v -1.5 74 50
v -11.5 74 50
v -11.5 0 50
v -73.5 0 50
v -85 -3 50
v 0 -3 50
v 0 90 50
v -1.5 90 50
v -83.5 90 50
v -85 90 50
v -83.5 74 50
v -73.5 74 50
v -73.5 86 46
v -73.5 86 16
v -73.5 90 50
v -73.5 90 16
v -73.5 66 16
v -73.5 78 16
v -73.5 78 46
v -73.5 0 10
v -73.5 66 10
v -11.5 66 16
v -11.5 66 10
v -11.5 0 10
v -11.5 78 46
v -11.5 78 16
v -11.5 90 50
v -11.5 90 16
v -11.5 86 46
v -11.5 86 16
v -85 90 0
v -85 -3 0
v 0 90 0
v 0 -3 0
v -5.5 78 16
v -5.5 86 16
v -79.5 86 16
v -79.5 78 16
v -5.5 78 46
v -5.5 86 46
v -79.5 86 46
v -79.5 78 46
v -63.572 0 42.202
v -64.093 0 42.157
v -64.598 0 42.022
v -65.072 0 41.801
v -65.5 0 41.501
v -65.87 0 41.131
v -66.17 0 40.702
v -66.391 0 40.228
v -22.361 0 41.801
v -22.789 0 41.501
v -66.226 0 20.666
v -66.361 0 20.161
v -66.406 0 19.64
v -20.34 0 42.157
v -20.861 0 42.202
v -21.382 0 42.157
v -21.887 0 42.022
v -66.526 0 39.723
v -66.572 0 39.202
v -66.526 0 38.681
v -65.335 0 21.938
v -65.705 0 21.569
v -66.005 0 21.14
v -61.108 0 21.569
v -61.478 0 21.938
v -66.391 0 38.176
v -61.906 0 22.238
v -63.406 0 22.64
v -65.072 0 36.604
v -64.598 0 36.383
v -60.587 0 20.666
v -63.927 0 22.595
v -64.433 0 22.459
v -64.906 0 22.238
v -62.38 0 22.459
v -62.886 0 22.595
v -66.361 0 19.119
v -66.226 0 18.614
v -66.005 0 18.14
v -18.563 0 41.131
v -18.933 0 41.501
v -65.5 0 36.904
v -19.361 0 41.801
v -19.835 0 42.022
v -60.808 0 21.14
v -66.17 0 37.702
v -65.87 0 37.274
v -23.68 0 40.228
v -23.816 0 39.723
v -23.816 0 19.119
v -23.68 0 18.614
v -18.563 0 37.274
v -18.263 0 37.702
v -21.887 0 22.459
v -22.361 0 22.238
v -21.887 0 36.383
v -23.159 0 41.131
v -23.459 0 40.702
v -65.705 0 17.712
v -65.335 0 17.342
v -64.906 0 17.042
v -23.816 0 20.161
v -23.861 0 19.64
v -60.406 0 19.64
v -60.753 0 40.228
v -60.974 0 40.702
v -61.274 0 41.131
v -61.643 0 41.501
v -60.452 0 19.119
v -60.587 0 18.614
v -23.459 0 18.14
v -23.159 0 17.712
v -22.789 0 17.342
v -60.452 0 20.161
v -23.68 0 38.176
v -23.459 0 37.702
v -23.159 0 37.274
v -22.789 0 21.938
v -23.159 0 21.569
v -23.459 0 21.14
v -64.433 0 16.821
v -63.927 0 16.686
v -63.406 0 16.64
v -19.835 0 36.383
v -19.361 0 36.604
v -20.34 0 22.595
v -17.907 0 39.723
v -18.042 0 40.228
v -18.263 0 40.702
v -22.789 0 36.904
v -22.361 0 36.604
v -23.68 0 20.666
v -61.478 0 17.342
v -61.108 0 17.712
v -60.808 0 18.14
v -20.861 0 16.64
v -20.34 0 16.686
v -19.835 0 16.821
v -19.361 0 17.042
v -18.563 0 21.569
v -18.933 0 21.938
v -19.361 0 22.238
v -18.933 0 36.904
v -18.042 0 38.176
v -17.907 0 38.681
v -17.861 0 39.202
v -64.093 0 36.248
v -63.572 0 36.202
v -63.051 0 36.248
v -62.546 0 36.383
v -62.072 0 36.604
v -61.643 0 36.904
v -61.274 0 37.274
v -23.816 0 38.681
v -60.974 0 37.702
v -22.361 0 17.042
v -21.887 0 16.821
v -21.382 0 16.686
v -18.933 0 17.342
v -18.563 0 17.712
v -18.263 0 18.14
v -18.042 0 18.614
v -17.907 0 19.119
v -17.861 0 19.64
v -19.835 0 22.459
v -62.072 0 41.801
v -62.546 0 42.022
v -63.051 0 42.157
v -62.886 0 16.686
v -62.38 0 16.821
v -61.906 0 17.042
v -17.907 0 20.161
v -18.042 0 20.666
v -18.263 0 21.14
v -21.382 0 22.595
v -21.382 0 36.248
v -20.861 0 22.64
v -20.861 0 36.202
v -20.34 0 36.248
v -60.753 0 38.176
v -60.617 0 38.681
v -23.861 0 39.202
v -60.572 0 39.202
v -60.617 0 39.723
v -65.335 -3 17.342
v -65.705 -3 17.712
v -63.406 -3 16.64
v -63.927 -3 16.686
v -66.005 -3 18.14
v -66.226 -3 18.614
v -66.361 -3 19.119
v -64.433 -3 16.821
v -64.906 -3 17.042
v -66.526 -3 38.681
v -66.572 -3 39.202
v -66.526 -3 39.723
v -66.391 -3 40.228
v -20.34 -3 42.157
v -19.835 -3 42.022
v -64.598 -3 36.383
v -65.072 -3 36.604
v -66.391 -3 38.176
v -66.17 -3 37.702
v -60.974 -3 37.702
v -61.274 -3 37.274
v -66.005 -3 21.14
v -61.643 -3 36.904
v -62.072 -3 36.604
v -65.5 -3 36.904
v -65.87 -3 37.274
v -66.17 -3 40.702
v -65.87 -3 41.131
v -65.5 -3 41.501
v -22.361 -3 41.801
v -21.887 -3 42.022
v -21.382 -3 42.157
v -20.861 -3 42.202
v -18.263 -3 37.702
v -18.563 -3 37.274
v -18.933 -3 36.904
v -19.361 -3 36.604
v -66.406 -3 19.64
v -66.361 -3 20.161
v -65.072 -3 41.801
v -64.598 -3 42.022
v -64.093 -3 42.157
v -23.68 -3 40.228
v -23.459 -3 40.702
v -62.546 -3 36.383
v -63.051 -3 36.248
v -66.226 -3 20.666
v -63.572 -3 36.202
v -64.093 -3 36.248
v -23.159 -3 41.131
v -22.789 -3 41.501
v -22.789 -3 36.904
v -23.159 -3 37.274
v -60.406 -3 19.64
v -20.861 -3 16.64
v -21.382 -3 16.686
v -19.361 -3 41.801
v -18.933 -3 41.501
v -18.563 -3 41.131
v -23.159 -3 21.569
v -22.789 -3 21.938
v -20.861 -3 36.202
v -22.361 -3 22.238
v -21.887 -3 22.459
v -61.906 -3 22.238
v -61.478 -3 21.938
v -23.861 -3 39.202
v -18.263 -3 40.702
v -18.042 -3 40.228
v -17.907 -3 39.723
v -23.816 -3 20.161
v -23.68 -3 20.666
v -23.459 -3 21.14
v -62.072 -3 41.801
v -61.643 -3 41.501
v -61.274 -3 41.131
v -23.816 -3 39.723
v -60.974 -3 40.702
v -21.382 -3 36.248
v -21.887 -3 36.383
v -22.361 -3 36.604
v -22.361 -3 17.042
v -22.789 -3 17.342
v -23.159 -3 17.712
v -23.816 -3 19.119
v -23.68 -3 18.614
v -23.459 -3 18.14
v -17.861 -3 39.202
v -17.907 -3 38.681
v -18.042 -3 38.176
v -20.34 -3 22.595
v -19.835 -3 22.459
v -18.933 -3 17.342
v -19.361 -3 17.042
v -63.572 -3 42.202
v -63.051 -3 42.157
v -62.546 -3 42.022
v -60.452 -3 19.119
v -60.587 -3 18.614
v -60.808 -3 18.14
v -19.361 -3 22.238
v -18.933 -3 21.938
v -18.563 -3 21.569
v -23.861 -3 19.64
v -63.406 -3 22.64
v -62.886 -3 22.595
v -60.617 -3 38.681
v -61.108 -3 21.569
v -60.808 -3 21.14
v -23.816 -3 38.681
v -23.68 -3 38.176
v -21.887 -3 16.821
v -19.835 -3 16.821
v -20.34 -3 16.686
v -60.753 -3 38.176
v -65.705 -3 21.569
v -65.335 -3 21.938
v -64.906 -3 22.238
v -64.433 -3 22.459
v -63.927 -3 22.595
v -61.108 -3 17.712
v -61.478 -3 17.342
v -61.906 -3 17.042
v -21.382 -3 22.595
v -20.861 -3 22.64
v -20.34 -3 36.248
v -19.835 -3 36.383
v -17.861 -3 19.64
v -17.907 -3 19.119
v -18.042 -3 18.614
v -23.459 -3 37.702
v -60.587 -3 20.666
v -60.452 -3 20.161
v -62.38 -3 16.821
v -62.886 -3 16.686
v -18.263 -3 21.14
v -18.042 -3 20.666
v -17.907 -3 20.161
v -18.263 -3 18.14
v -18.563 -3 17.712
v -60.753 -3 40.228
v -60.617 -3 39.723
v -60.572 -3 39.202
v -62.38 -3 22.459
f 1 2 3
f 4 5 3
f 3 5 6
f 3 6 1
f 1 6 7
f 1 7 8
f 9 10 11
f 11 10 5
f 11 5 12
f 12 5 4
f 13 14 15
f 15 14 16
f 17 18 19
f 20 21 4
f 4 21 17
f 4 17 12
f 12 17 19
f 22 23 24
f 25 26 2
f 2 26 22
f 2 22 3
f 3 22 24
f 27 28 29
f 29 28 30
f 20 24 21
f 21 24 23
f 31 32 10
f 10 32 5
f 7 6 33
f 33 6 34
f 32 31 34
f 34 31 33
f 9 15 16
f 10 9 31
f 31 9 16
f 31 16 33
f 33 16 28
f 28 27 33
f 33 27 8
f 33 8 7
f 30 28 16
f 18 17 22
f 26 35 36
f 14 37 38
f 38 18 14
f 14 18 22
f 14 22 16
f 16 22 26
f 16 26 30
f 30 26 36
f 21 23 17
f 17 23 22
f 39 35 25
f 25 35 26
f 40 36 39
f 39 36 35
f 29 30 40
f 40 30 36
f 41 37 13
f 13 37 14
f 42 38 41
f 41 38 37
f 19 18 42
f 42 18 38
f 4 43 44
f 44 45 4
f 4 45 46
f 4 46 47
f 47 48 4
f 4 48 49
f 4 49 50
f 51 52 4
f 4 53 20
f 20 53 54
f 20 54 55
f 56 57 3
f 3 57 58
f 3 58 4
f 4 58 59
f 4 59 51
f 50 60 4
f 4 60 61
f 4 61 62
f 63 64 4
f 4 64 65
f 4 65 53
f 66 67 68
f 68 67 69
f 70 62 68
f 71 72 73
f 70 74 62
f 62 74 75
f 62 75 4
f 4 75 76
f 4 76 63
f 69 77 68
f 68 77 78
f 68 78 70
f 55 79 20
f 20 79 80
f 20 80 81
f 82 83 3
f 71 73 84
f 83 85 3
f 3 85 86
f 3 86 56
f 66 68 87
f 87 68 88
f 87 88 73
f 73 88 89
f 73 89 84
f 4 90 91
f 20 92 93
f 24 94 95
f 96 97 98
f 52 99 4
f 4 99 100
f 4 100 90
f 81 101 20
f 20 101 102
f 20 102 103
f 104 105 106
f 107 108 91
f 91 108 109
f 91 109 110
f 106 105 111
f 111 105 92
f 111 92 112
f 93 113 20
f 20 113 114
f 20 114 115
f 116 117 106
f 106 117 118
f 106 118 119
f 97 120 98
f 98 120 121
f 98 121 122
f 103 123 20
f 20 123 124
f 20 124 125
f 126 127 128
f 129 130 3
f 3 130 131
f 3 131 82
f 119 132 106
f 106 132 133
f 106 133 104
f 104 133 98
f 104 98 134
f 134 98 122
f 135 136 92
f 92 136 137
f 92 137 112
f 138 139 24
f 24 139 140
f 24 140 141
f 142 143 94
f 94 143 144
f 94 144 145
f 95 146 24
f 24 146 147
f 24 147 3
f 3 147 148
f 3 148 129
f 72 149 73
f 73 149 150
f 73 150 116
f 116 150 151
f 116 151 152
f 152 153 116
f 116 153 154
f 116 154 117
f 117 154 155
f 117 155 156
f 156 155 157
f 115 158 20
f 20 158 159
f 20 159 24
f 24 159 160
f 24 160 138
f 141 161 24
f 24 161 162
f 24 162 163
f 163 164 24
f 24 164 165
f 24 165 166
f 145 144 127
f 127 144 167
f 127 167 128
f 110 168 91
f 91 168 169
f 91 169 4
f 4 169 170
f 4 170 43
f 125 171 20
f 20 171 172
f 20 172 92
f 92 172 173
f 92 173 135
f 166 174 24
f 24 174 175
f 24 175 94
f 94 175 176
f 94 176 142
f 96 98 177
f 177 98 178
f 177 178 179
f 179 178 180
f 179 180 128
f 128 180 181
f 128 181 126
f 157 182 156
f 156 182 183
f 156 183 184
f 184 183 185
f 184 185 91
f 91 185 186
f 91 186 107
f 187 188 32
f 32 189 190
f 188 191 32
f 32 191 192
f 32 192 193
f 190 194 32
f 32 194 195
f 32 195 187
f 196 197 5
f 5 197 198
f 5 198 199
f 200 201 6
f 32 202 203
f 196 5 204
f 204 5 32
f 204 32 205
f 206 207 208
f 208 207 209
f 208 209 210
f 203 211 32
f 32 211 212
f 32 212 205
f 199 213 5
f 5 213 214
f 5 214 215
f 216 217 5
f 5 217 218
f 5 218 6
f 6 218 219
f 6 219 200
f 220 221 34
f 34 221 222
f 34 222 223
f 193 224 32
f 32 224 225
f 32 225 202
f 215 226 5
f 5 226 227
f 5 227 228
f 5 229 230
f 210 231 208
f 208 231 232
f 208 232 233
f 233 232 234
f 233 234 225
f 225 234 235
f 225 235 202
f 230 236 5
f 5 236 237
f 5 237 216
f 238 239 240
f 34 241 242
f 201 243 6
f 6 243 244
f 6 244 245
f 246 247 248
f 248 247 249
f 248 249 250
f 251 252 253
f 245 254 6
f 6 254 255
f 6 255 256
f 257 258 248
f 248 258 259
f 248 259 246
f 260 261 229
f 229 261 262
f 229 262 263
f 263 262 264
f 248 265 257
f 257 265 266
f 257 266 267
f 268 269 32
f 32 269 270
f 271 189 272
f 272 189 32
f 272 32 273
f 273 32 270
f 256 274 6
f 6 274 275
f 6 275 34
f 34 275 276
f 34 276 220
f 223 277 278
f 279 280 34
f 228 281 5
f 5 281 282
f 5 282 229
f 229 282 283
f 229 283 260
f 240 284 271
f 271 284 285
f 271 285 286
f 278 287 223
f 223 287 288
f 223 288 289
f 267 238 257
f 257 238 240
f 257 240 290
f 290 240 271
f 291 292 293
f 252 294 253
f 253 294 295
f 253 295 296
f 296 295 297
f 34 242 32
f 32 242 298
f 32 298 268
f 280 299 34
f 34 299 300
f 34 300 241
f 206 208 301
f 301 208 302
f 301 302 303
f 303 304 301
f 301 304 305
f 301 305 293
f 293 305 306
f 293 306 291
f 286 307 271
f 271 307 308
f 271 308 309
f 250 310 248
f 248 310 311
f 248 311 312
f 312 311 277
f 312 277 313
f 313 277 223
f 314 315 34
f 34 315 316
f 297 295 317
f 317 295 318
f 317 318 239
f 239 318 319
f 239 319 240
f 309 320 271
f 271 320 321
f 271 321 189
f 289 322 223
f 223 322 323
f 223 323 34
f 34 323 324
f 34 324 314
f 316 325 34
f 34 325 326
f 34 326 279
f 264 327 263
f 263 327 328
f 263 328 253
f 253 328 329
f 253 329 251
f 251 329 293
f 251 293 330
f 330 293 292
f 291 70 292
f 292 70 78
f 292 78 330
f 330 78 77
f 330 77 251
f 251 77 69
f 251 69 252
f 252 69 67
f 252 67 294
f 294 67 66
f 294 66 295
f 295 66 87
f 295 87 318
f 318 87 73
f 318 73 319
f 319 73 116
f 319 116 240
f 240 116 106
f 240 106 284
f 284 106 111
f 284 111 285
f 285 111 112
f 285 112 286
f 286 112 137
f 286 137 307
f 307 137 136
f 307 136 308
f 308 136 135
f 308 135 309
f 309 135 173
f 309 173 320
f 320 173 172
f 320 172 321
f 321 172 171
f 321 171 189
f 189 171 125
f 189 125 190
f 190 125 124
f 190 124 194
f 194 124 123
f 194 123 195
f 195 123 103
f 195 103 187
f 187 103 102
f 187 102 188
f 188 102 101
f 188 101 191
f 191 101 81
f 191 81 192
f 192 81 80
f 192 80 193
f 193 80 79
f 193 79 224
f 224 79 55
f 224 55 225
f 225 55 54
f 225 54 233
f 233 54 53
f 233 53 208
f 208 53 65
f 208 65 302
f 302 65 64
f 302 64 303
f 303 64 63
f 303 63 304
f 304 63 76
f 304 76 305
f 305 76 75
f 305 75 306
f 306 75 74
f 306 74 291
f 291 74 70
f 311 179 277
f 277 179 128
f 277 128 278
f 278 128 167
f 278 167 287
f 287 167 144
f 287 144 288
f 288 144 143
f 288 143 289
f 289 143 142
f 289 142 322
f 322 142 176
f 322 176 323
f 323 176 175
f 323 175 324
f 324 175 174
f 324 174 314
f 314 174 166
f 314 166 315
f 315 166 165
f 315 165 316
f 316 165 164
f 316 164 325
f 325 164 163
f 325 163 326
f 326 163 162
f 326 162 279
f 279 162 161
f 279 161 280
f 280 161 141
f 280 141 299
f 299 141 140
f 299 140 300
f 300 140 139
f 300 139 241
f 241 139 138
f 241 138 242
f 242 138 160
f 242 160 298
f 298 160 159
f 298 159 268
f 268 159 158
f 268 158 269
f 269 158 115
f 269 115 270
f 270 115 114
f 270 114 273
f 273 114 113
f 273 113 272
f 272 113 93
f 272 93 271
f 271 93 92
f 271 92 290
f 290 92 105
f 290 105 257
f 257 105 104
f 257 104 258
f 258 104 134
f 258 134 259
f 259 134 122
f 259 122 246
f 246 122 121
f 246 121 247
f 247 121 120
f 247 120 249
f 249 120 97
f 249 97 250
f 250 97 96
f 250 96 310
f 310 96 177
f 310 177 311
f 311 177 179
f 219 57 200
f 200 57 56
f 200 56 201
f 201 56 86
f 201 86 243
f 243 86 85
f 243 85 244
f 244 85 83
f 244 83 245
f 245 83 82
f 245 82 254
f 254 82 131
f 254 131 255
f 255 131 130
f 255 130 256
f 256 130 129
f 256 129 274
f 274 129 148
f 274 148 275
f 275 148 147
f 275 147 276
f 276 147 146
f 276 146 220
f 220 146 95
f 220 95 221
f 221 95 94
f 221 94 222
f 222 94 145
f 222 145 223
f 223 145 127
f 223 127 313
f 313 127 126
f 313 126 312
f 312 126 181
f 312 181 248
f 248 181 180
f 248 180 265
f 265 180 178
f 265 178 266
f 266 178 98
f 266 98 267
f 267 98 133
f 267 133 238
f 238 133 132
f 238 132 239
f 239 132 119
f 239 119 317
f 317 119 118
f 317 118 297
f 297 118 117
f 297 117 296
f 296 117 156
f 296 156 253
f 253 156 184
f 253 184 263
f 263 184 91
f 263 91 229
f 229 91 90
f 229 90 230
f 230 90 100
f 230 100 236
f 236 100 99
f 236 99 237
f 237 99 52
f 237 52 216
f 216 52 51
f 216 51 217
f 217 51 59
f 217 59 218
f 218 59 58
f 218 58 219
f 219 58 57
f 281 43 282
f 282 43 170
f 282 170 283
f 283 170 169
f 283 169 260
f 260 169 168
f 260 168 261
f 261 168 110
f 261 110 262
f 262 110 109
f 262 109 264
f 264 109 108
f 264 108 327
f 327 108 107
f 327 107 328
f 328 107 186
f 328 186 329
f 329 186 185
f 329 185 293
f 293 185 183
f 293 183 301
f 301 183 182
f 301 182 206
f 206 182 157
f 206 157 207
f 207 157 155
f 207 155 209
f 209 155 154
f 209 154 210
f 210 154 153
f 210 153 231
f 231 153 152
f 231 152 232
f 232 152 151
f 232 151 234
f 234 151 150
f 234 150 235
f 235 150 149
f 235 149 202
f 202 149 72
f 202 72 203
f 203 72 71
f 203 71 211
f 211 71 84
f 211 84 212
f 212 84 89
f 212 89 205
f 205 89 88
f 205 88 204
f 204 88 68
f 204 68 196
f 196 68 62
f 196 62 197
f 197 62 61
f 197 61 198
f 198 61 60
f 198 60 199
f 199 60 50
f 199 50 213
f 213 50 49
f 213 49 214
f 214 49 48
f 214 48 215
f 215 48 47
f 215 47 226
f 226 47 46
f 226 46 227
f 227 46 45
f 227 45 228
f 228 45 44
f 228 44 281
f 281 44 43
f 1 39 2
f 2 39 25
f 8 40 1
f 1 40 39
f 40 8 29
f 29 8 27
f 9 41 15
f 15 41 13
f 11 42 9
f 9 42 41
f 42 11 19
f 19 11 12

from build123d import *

# Parameters (mm, degrees)
SKETCH1_W           = 85
SKETCH1_H           = 50
BOSS_EXTRUDE1_DEPTH = 90
CUT_EXTRUDE1_REACH  = 135.51
SKETCH2_W           = 62
SKETCH2_H           = 40
SKETCH3_W           = 85
SKETCH3_H           = 16
BOSS_EXTRUDE2_DEPTH = 24
CUT_EXTRUDE2_REACH  = 130.378
SKETCH4_W           = 6
SKETCH4_H           = 8
SKETCH5_W           = 85
SKETCH5_H           = 50
BOSS_EXTRUDE3_DEPTH = 3
CUT_EXTRUDE3_REACH  = 135.51
SKETCH6_R           = 3
CHAMFER1_SIZE       = 4


with BuildPart() as part:
    # Sketch1 → Boss-Extrude1 (new body)
    with BuildSketch(Plane(origin=(0, 0, 0), x_dir=(1, 0, 0), z_dir=(0, 1, 0))):
        with Locations((-42.5, -25)):
            Rectangle(SKETCH1_W, SKETCH1_H)
    extrude(amount=BOSS_EXTRUDE1_DEPTH)

    # Sketch2 → Cut-Extrude1 (cut, up to next)
    with BuildSketch(Plane(origin=(0, 90, 0), x_dir=(1, 0, 0), z_dir=(0, 1, 0)), mode=Mode.PRIVATE) as cut_extrude1_sk1:
        with Locations((-42.5, -30)):
            Rectangle(SKETCH2_W, SKETCH2_H)
    cut_extrude1_tool1 = extrude(cut_extrude1_sk1.sketch, amount=-CUT_EXTRUDE1_REACH, mode=Mode.PRIVATE) & part.part
    add(cut_extrude1_tool1.solids().sort_by_distance((-42.5, 90, 30))[0], mode=Mode.SUBTRACT)

    # Sketch3 → Boss-Extrude2 (add)
    with BuildSketch(Plane(origin=(0, 90, 0), x_dir=(1, 0, 0), z_dir=(0, 1, 0))):
        with Locations((-42.5, -8)):
            Rectangle(SKETCH3_W, SKETCH3_H)
    extrude(amount=-BOSS_EXTRUDE2_DEPTH)

    # Sketch4 → Cut-Extrude2 (cut, up to next)
    with BuildSketch(Plane.XY.offset(16), mode=Mode.PRIVATE) as cut_extrude2_sk1:
        with Locations((-76.5, 82)):
            Rectangle(SKETCH4_W, SKETCH4_H)
    cut_extrude2_tool1 = extrude(cut_extrude2_sk1.sketch, amount=CUT_EXTRUDE2_REACH, mode=Mode.PRIVATE) & part.part
    # Sketch4 → Cut-Extrude2 (cut, up to next)
    with BuildSketch(Plane.XY.offset(16), mode=Mode.PRIVATE) as cut_extrude2_sk2:
        with Locations((-8.5, 82)):
            Rectangle(SKETCH4_W, SKETCH4_H)
    cut_extrude2_tool2 = extrude(cut_extrude2_sk2.sketch, amount=CUT_EXTRUDE2_REACH, mode=Mode.PRIVATE) & part.part
    add(cut_extrude2_tool1.solids().sort_by_distance((-76.5, 82, 16))[0], mode=Mode.SUBTRACT)
    add(cut_extrude2_tool2.solids().sort_by_distance((-8.5, 82, 16))[0], mode=Mode.SUBTRACT)

    # Sketch5 → Boss-Extrude3 (add)
    with BuildSketch(Plane.XZ):
        with Locations((-42.5, 25)):
            Rectangle(SKETCH5_W, SKETCH5_H)
    extrude(amount=BOSS_EXTRUDE3_DEPTH)

    # Sketch6 → Cut-Extrude3 (cut, up to next)
    with BuildSketch(Plane(origin=(0, 0, 0), x_dir=(1, 0, 0), z_dir=(0, 1, 0)), mode=Mode.PRIVATE) as cut_extrude3_sk1:
        with Locations(Location((-63.406474548, -19.640219105, 0), (0, 0, 270))):
            Circle(SKETCH6_R)
    cut_extrude3_tool1 = extrude(cut_extrude3_sk1.sketch, amount=-CUT_EXTRUDE3_REACH, mode=Mode.PRIVATE) & part.part
    # Sketch6 → Cut-Extrude3 (cut, up to next)
    with BuildSketch(Plane(origin=(0, 0, 0), x_dir=(1, 0, 0), z_dir=(0, 1, 0)), mode=Mode.PRIVATE) as cut_extrude3_sk2:
        with Locations(Location((-20.861133032, -19.640219105, 0), (0, 0, 270))):
            Circle(SKETCH6_R)
    cut_extrude3_tool2 = extrude(cut_extrude3_sk2.sketch, amount=-CUT_EXTRUDE3_REACH, mode=Mode.PRIVATE) & part.part
    # Sketch6 → Cut-Extrude3 (cut, up to next)
    with BuildSketch(Plane(origin=(0, 0, 0), x_dir=(1, 0, 0), z_dir=(0, 1, 0)), mode=Mode.PRIVATE) as cut_extrude3_sk3:
        with Locations(Location((-20.861133032, -39.202410137, 0), (0, 0, 270))):
            Circle(SKETCH6_R)
    cut_extrude3_tool3 = extrude(cut_extrude3_sk3.sketch, amount=-CUT_EXTRUDE3_REACH, mode=Mode.PRIVATE) & part.part
    # Sketch6 → Cut-Extrude3 (cut, up to next)
    with BuildSketch(Plane(origin=(0, 0, 0), x_dir=(1, 0, 0), z_dir=(0, 1, 0)), mode=Mode.PRIVATE) as cut_extrude3_sk4:
        with Locations(Location((-63.571834409, -39.202410137, 0), (0, 0, 270))):
            Circle(SKETCH6_R)
    cut_extrude3_tool4 = extrude(cut_extrude3_sk4.sketch, amount=-CUT_EXTRUDE3_REACH, mode=Mode.PRIVATE) & part.part
    add(cut_extrude3_tool1.solids().sort_by_distance((-63.406475, 0, 19.640219))[0], mode=Mode.SUBTRACT)
    add(cut_extrude3_tool2.solids().sort_by_distance((-20.861133, 0, 19.640219))[0], mode=Mode.SUBTRACT)
    add(cut_extrude3_tool3.solids().sort_by_distance((-20.861133, 0, 39.20241))[0], mode=Mode.SUBTRACT)
    add(cut_extrude3_tool4.solids().sort_by_distance((-63.571834, 0, 39.20241))[0], mode=Mode.SUBTRACT)

    # Chamfer1
    chamfer1_edges = [part.edges().sort_by_distance(p)[0] for p in [
        (-76.5, 86, 50),
        (-79.5, 82, 50),
        (-76.5, 78, 50),
        (-8.5, 78, 50),
        (-5.5, 82, 50),
        (-8.5, 86, 50),
    ]]
    chamfer(chamfer1_edges, length=CHAMFER1_SIZE - 0.0001)  # a hair under: the kernel refuses the full size


solid = part.part
